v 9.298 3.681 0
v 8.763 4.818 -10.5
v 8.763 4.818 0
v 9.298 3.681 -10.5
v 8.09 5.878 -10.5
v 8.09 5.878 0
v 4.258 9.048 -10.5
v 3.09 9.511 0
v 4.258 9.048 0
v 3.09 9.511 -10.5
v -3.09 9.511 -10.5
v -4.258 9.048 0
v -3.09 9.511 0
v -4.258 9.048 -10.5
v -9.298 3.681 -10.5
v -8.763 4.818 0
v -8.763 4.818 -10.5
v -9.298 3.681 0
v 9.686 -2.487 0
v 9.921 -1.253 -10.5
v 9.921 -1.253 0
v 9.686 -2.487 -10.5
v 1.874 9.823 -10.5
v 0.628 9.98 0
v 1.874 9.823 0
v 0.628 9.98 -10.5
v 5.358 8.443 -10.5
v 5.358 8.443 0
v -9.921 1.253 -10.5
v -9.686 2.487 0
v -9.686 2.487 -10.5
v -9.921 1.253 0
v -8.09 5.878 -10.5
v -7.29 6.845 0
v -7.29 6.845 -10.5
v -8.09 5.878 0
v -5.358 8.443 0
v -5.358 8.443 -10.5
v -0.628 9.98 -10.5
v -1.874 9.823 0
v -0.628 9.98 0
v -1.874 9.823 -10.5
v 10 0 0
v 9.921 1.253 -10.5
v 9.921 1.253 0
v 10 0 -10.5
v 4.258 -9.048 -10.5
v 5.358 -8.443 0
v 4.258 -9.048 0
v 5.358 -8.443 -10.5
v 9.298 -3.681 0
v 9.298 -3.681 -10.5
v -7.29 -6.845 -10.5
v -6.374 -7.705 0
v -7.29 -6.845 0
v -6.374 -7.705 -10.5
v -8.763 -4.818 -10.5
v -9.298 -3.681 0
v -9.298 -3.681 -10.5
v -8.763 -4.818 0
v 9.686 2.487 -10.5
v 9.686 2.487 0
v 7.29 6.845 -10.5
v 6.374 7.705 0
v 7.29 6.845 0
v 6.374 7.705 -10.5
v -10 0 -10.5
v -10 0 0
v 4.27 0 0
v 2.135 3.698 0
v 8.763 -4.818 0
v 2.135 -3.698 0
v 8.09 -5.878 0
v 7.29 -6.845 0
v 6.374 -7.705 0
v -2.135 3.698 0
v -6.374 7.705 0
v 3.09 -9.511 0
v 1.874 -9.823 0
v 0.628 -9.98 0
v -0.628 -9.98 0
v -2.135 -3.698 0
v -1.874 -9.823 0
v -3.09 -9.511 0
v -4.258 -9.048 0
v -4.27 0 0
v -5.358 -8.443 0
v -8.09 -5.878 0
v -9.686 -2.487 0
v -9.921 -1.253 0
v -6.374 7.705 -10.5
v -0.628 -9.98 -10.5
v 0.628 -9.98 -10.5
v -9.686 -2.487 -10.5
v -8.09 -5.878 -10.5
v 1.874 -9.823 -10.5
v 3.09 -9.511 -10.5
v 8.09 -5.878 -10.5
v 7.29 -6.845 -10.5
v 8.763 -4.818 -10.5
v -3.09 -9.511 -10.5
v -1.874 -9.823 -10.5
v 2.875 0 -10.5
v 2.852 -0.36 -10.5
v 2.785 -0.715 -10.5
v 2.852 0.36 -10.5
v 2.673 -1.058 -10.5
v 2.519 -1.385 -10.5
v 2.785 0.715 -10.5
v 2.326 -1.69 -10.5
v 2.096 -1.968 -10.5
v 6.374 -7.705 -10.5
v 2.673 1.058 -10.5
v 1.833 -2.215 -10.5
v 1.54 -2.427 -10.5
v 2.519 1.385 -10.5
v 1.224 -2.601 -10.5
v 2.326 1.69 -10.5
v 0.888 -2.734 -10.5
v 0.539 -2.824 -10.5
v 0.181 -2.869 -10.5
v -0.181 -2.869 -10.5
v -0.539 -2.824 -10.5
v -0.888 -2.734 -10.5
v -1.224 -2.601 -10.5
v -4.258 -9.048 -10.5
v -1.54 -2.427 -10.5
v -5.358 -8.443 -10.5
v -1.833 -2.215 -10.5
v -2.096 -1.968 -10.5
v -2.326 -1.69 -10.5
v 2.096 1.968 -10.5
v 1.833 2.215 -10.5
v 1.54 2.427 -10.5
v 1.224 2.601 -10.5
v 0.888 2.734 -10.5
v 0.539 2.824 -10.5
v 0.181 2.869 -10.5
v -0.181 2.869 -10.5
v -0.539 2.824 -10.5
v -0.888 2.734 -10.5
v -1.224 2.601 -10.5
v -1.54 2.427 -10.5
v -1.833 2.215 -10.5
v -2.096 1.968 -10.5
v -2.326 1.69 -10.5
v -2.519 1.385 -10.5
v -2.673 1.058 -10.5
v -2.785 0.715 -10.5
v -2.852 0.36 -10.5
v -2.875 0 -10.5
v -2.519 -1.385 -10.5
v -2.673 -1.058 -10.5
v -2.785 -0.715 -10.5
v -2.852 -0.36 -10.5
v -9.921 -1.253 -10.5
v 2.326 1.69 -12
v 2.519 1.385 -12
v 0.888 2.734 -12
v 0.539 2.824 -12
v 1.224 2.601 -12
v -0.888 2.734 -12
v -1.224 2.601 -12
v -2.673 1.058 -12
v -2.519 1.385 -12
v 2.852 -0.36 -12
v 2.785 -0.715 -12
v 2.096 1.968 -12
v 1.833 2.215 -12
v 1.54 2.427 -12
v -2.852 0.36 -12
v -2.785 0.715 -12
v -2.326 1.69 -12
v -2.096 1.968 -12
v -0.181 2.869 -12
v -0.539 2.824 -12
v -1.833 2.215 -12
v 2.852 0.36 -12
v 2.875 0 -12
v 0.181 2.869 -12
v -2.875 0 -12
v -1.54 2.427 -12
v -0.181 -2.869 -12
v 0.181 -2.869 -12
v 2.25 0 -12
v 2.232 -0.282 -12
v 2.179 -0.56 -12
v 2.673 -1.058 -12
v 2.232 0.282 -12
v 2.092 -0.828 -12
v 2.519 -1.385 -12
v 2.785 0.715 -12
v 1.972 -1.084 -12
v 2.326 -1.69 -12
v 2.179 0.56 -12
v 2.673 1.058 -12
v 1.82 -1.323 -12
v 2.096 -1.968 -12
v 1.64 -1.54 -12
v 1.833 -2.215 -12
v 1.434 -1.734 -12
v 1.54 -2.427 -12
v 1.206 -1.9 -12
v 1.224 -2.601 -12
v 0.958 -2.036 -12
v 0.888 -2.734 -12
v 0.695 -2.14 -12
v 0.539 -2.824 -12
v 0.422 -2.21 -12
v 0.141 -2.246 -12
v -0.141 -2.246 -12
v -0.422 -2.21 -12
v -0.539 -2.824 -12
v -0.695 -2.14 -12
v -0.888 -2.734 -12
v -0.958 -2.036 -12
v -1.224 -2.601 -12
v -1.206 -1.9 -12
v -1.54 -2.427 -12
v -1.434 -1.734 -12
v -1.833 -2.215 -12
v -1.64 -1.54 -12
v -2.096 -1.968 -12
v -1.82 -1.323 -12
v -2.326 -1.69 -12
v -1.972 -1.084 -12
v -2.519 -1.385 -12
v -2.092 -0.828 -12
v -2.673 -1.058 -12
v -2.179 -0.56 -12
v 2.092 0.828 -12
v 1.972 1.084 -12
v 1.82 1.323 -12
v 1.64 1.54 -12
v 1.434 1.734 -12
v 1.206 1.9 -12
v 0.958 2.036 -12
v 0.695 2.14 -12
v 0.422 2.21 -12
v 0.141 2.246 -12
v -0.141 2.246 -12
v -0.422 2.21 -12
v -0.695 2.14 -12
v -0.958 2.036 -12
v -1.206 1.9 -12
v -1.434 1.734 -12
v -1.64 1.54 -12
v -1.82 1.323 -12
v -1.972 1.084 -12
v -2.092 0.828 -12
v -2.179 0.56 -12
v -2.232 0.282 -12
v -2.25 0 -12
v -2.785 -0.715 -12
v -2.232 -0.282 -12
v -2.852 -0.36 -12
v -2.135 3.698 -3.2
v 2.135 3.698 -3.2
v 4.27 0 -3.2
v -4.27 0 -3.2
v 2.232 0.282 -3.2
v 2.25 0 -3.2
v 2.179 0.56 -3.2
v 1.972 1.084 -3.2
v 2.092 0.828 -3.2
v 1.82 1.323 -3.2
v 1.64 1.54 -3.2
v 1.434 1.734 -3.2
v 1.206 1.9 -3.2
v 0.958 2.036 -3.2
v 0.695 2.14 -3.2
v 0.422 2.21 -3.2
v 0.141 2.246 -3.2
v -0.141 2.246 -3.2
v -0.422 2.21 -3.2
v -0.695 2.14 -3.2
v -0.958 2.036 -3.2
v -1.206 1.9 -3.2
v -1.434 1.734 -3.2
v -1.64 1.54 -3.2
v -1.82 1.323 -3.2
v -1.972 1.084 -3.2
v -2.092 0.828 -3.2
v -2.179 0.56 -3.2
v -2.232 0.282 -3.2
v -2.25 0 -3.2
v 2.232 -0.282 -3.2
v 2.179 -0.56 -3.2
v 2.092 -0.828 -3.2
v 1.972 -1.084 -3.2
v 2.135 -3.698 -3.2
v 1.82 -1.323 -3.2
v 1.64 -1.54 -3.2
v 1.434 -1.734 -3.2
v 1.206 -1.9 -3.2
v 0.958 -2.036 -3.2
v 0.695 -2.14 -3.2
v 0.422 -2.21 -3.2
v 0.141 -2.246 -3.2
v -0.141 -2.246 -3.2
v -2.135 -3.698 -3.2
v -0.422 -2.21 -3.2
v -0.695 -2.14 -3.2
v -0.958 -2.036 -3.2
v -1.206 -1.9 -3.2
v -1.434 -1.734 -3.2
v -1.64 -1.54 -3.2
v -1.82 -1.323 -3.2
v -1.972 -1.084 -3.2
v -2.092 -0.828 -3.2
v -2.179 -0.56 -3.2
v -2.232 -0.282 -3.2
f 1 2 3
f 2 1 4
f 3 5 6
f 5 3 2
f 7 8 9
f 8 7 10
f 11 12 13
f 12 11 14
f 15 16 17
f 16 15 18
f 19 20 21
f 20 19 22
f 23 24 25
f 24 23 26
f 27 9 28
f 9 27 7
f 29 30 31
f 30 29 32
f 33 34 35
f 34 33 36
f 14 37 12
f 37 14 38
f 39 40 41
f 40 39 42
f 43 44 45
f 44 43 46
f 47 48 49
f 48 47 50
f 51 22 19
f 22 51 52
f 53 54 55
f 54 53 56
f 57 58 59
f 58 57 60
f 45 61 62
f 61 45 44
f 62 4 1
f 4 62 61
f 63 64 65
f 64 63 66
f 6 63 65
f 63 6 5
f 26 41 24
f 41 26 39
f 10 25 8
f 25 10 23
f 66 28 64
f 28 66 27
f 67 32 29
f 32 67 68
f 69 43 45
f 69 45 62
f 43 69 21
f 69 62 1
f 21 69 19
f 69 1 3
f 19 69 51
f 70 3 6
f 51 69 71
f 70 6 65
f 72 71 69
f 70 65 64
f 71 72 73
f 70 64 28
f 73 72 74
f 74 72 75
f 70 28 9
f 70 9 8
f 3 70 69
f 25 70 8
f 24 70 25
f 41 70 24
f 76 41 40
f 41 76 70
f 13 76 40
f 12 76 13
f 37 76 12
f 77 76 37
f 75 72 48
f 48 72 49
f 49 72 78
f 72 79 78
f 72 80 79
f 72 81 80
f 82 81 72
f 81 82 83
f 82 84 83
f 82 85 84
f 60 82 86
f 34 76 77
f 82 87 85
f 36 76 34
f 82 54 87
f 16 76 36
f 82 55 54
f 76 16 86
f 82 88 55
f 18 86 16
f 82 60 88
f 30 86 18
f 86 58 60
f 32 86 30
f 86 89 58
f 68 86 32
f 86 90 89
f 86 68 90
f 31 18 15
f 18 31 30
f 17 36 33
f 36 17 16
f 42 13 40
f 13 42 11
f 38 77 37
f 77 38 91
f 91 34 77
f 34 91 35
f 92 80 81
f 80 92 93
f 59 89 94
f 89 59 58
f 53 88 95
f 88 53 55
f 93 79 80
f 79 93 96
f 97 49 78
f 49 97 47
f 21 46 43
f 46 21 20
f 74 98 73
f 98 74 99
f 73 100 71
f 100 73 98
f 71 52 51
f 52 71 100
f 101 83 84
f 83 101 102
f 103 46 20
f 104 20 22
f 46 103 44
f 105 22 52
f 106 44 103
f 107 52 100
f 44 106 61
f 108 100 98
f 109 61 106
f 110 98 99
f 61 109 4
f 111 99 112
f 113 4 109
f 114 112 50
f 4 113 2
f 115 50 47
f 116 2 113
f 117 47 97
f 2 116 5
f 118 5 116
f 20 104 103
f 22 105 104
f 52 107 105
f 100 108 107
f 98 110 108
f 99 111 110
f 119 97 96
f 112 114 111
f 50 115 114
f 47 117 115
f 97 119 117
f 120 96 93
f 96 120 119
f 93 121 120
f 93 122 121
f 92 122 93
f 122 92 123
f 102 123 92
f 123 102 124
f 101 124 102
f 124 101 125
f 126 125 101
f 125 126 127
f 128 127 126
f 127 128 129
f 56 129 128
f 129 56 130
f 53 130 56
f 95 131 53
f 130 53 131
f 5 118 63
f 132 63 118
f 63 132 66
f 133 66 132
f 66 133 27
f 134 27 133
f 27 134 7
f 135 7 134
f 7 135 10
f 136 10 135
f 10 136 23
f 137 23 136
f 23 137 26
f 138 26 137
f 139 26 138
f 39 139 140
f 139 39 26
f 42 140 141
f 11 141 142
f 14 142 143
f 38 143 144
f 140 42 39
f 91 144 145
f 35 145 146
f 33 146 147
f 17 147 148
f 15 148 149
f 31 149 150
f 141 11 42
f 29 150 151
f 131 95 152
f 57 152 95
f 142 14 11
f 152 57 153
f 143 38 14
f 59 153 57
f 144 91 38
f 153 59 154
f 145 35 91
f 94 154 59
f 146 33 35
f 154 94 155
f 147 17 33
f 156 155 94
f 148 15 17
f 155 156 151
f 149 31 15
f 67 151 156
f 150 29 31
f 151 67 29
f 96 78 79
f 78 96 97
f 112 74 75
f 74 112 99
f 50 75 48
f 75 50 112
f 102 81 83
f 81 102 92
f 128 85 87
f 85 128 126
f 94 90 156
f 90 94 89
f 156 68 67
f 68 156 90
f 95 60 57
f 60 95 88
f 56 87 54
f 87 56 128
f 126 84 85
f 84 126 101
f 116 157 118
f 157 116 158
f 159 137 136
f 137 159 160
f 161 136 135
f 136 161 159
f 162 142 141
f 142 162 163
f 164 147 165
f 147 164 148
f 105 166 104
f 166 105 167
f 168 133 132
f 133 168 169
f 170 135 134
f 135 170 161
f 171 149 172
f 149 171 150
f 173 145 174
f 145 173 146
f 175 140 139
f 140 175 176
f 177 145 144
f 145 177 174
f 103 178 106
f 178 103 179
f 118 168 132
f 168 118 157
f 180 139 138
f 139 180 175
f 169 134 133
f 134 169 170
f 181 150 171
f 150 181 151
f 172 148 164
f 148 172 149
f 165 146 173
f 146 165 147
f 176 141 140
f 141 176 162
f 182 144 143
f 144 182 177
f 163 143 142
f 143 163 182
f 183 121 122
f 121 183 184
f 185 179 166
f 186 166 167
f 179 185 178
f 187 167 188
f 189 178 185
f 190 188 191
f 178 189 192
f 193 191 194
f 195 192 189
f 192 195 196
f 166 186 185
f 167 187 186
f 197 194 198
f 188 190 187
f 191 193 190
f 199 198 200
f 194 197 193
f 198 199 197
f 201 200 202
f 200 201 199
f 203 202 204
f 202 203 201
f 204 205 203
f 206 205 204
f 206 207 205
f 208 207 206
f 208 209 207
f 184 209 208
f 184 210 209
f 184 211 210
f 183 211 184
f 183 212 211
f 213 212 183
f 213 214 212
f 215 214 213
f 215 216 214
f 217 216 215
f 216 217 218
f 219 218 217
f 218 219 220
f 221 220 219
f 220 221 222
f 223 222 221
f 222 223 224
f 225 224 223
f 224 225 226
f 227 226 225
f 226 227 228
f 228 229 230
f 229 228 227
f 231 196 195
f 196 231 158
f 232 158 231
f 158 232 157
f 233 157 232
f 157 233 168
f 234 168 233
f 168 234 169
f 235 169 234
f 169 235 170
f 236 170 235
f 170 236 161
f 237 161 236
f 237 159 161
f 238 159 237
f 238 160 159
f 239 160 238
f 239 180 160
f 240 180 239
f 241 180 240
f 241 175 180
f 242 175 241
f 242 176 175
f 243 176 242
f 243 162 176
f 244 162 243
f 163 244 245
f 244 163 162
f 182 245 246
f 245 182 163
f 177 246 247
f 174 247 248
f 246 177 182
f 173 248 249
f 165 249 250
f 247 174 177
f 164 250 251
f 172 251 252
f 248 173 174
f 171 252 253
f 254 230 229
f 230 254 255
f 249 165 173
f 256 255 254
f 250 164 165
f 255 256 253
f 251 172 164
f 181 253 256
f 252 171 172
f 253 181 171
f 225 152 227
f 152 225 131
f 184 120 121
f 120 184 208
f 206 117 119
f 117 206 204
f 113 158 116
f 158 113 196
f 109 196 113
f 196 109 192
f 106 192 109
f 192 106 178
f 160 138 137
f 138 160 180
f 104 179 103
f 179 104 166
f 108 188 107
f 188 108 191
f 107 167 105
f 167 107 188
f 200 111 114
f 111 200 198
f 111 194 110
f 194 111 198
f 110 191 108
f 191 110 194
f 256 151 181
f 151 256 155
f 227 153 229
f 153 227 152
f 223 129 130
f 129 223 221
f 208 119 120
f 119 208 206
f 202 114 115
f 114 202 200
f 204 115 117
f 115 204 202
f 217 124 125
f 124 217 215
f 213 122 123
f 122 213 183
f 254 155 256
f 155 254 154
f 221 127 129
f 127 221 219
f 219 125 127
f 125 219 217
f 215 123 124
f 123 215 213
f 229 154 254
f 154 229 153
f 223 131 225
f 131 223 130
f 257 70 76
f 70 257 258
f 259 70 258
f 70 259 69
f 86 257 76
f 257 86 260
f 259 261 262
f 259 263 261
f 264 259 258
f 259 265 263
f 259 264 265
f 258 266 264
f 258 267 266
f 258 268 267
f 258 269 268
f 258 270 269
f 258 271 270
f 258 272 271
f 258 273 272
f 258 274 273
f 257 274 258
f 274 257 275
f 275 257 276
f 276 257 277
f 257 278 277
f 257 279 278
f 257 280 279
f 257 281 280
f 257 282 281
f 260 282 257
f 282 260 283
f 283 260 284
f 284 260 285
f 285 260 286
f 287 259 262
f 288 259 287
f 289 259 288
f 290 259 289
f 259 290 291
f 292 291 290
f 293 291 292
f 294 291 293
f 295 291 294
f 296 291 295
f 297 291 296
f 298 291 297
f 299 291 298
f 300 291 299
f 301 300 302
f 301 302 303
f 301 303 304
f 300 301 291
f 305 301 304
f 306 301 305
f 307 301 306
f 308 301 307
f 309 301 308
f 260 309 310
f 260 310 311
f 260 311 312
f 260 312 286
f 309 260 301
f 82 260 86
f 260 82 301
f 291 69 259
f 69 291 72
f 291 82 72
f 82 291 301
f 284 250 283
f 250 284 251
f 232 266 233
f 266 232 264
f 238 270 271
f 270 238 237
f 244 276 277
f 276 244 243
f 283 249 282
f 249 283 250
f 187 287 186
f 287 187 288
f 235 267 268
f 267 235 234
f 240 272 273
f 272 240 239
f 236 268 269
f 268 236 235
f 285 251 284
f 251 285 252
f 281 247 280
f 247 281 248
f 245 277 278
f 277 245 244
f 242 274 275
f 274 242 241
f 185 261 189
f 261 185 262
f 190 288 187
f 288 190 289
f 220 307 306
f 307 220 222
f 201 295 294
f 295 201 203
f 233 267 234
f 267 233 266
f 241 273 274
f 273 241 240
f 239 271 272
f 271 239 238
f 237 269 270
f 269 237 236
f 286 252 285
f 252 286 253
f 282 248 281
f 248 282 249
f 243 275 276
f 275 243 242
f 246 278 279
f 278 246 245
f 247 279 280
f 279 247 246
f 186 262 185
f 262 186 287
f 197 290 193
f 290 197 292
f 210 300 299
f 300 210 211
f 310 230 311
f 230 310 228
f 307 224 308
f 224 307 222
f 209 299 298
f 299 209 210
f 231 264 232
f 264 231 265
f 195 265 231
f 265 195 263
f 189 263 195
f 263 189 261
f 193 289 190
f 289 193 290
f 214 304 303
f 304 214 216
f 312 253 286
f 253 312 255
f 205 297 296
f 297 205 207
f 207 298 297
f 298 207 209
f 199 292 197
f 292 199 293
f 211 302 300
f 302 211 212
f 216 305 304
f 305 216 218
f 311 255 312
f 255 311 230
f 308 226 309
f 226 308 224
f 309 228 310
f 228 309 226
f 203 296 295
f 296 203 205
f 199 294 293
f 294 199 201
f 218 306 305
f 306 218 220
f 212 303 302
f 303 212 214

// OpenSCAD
$fn = 50;

difference() {
	union() {
		translate(v = [0, 0, -10.5]) {
			cylinder(h = 10.5, r = 10.0);
		}
		#translate(v = [0, 0, -12.0]) {
			cylinder(h = 12, r = 2.875);
		}
	}
	union() {
		translate(v = [0, 0, 0]) {
			rotate(a = [0, 0, 0]) {
				difference() {
					union() {
						translate(v = [0, 0, -3.2]) {
							linear_extrude(height = 3.2) {
								polygon(points = [[4.2698, 0.0], [2.1349000000000005, 3.697755269078796], [-2.134899999999999, 3.6977552690787965], [-4.2698, 5.228996902999369e-16], [-2.134900000000002, -3.6977552690787956], [2.1348999999999974, -3.697755269078798]]);
							}
						}
					}
					union();
				}
			}
		}
		#translate(v = [0, 0, -100.0]) {
			cylinder(h = 200, r = 2.25);
		}
	}
}
